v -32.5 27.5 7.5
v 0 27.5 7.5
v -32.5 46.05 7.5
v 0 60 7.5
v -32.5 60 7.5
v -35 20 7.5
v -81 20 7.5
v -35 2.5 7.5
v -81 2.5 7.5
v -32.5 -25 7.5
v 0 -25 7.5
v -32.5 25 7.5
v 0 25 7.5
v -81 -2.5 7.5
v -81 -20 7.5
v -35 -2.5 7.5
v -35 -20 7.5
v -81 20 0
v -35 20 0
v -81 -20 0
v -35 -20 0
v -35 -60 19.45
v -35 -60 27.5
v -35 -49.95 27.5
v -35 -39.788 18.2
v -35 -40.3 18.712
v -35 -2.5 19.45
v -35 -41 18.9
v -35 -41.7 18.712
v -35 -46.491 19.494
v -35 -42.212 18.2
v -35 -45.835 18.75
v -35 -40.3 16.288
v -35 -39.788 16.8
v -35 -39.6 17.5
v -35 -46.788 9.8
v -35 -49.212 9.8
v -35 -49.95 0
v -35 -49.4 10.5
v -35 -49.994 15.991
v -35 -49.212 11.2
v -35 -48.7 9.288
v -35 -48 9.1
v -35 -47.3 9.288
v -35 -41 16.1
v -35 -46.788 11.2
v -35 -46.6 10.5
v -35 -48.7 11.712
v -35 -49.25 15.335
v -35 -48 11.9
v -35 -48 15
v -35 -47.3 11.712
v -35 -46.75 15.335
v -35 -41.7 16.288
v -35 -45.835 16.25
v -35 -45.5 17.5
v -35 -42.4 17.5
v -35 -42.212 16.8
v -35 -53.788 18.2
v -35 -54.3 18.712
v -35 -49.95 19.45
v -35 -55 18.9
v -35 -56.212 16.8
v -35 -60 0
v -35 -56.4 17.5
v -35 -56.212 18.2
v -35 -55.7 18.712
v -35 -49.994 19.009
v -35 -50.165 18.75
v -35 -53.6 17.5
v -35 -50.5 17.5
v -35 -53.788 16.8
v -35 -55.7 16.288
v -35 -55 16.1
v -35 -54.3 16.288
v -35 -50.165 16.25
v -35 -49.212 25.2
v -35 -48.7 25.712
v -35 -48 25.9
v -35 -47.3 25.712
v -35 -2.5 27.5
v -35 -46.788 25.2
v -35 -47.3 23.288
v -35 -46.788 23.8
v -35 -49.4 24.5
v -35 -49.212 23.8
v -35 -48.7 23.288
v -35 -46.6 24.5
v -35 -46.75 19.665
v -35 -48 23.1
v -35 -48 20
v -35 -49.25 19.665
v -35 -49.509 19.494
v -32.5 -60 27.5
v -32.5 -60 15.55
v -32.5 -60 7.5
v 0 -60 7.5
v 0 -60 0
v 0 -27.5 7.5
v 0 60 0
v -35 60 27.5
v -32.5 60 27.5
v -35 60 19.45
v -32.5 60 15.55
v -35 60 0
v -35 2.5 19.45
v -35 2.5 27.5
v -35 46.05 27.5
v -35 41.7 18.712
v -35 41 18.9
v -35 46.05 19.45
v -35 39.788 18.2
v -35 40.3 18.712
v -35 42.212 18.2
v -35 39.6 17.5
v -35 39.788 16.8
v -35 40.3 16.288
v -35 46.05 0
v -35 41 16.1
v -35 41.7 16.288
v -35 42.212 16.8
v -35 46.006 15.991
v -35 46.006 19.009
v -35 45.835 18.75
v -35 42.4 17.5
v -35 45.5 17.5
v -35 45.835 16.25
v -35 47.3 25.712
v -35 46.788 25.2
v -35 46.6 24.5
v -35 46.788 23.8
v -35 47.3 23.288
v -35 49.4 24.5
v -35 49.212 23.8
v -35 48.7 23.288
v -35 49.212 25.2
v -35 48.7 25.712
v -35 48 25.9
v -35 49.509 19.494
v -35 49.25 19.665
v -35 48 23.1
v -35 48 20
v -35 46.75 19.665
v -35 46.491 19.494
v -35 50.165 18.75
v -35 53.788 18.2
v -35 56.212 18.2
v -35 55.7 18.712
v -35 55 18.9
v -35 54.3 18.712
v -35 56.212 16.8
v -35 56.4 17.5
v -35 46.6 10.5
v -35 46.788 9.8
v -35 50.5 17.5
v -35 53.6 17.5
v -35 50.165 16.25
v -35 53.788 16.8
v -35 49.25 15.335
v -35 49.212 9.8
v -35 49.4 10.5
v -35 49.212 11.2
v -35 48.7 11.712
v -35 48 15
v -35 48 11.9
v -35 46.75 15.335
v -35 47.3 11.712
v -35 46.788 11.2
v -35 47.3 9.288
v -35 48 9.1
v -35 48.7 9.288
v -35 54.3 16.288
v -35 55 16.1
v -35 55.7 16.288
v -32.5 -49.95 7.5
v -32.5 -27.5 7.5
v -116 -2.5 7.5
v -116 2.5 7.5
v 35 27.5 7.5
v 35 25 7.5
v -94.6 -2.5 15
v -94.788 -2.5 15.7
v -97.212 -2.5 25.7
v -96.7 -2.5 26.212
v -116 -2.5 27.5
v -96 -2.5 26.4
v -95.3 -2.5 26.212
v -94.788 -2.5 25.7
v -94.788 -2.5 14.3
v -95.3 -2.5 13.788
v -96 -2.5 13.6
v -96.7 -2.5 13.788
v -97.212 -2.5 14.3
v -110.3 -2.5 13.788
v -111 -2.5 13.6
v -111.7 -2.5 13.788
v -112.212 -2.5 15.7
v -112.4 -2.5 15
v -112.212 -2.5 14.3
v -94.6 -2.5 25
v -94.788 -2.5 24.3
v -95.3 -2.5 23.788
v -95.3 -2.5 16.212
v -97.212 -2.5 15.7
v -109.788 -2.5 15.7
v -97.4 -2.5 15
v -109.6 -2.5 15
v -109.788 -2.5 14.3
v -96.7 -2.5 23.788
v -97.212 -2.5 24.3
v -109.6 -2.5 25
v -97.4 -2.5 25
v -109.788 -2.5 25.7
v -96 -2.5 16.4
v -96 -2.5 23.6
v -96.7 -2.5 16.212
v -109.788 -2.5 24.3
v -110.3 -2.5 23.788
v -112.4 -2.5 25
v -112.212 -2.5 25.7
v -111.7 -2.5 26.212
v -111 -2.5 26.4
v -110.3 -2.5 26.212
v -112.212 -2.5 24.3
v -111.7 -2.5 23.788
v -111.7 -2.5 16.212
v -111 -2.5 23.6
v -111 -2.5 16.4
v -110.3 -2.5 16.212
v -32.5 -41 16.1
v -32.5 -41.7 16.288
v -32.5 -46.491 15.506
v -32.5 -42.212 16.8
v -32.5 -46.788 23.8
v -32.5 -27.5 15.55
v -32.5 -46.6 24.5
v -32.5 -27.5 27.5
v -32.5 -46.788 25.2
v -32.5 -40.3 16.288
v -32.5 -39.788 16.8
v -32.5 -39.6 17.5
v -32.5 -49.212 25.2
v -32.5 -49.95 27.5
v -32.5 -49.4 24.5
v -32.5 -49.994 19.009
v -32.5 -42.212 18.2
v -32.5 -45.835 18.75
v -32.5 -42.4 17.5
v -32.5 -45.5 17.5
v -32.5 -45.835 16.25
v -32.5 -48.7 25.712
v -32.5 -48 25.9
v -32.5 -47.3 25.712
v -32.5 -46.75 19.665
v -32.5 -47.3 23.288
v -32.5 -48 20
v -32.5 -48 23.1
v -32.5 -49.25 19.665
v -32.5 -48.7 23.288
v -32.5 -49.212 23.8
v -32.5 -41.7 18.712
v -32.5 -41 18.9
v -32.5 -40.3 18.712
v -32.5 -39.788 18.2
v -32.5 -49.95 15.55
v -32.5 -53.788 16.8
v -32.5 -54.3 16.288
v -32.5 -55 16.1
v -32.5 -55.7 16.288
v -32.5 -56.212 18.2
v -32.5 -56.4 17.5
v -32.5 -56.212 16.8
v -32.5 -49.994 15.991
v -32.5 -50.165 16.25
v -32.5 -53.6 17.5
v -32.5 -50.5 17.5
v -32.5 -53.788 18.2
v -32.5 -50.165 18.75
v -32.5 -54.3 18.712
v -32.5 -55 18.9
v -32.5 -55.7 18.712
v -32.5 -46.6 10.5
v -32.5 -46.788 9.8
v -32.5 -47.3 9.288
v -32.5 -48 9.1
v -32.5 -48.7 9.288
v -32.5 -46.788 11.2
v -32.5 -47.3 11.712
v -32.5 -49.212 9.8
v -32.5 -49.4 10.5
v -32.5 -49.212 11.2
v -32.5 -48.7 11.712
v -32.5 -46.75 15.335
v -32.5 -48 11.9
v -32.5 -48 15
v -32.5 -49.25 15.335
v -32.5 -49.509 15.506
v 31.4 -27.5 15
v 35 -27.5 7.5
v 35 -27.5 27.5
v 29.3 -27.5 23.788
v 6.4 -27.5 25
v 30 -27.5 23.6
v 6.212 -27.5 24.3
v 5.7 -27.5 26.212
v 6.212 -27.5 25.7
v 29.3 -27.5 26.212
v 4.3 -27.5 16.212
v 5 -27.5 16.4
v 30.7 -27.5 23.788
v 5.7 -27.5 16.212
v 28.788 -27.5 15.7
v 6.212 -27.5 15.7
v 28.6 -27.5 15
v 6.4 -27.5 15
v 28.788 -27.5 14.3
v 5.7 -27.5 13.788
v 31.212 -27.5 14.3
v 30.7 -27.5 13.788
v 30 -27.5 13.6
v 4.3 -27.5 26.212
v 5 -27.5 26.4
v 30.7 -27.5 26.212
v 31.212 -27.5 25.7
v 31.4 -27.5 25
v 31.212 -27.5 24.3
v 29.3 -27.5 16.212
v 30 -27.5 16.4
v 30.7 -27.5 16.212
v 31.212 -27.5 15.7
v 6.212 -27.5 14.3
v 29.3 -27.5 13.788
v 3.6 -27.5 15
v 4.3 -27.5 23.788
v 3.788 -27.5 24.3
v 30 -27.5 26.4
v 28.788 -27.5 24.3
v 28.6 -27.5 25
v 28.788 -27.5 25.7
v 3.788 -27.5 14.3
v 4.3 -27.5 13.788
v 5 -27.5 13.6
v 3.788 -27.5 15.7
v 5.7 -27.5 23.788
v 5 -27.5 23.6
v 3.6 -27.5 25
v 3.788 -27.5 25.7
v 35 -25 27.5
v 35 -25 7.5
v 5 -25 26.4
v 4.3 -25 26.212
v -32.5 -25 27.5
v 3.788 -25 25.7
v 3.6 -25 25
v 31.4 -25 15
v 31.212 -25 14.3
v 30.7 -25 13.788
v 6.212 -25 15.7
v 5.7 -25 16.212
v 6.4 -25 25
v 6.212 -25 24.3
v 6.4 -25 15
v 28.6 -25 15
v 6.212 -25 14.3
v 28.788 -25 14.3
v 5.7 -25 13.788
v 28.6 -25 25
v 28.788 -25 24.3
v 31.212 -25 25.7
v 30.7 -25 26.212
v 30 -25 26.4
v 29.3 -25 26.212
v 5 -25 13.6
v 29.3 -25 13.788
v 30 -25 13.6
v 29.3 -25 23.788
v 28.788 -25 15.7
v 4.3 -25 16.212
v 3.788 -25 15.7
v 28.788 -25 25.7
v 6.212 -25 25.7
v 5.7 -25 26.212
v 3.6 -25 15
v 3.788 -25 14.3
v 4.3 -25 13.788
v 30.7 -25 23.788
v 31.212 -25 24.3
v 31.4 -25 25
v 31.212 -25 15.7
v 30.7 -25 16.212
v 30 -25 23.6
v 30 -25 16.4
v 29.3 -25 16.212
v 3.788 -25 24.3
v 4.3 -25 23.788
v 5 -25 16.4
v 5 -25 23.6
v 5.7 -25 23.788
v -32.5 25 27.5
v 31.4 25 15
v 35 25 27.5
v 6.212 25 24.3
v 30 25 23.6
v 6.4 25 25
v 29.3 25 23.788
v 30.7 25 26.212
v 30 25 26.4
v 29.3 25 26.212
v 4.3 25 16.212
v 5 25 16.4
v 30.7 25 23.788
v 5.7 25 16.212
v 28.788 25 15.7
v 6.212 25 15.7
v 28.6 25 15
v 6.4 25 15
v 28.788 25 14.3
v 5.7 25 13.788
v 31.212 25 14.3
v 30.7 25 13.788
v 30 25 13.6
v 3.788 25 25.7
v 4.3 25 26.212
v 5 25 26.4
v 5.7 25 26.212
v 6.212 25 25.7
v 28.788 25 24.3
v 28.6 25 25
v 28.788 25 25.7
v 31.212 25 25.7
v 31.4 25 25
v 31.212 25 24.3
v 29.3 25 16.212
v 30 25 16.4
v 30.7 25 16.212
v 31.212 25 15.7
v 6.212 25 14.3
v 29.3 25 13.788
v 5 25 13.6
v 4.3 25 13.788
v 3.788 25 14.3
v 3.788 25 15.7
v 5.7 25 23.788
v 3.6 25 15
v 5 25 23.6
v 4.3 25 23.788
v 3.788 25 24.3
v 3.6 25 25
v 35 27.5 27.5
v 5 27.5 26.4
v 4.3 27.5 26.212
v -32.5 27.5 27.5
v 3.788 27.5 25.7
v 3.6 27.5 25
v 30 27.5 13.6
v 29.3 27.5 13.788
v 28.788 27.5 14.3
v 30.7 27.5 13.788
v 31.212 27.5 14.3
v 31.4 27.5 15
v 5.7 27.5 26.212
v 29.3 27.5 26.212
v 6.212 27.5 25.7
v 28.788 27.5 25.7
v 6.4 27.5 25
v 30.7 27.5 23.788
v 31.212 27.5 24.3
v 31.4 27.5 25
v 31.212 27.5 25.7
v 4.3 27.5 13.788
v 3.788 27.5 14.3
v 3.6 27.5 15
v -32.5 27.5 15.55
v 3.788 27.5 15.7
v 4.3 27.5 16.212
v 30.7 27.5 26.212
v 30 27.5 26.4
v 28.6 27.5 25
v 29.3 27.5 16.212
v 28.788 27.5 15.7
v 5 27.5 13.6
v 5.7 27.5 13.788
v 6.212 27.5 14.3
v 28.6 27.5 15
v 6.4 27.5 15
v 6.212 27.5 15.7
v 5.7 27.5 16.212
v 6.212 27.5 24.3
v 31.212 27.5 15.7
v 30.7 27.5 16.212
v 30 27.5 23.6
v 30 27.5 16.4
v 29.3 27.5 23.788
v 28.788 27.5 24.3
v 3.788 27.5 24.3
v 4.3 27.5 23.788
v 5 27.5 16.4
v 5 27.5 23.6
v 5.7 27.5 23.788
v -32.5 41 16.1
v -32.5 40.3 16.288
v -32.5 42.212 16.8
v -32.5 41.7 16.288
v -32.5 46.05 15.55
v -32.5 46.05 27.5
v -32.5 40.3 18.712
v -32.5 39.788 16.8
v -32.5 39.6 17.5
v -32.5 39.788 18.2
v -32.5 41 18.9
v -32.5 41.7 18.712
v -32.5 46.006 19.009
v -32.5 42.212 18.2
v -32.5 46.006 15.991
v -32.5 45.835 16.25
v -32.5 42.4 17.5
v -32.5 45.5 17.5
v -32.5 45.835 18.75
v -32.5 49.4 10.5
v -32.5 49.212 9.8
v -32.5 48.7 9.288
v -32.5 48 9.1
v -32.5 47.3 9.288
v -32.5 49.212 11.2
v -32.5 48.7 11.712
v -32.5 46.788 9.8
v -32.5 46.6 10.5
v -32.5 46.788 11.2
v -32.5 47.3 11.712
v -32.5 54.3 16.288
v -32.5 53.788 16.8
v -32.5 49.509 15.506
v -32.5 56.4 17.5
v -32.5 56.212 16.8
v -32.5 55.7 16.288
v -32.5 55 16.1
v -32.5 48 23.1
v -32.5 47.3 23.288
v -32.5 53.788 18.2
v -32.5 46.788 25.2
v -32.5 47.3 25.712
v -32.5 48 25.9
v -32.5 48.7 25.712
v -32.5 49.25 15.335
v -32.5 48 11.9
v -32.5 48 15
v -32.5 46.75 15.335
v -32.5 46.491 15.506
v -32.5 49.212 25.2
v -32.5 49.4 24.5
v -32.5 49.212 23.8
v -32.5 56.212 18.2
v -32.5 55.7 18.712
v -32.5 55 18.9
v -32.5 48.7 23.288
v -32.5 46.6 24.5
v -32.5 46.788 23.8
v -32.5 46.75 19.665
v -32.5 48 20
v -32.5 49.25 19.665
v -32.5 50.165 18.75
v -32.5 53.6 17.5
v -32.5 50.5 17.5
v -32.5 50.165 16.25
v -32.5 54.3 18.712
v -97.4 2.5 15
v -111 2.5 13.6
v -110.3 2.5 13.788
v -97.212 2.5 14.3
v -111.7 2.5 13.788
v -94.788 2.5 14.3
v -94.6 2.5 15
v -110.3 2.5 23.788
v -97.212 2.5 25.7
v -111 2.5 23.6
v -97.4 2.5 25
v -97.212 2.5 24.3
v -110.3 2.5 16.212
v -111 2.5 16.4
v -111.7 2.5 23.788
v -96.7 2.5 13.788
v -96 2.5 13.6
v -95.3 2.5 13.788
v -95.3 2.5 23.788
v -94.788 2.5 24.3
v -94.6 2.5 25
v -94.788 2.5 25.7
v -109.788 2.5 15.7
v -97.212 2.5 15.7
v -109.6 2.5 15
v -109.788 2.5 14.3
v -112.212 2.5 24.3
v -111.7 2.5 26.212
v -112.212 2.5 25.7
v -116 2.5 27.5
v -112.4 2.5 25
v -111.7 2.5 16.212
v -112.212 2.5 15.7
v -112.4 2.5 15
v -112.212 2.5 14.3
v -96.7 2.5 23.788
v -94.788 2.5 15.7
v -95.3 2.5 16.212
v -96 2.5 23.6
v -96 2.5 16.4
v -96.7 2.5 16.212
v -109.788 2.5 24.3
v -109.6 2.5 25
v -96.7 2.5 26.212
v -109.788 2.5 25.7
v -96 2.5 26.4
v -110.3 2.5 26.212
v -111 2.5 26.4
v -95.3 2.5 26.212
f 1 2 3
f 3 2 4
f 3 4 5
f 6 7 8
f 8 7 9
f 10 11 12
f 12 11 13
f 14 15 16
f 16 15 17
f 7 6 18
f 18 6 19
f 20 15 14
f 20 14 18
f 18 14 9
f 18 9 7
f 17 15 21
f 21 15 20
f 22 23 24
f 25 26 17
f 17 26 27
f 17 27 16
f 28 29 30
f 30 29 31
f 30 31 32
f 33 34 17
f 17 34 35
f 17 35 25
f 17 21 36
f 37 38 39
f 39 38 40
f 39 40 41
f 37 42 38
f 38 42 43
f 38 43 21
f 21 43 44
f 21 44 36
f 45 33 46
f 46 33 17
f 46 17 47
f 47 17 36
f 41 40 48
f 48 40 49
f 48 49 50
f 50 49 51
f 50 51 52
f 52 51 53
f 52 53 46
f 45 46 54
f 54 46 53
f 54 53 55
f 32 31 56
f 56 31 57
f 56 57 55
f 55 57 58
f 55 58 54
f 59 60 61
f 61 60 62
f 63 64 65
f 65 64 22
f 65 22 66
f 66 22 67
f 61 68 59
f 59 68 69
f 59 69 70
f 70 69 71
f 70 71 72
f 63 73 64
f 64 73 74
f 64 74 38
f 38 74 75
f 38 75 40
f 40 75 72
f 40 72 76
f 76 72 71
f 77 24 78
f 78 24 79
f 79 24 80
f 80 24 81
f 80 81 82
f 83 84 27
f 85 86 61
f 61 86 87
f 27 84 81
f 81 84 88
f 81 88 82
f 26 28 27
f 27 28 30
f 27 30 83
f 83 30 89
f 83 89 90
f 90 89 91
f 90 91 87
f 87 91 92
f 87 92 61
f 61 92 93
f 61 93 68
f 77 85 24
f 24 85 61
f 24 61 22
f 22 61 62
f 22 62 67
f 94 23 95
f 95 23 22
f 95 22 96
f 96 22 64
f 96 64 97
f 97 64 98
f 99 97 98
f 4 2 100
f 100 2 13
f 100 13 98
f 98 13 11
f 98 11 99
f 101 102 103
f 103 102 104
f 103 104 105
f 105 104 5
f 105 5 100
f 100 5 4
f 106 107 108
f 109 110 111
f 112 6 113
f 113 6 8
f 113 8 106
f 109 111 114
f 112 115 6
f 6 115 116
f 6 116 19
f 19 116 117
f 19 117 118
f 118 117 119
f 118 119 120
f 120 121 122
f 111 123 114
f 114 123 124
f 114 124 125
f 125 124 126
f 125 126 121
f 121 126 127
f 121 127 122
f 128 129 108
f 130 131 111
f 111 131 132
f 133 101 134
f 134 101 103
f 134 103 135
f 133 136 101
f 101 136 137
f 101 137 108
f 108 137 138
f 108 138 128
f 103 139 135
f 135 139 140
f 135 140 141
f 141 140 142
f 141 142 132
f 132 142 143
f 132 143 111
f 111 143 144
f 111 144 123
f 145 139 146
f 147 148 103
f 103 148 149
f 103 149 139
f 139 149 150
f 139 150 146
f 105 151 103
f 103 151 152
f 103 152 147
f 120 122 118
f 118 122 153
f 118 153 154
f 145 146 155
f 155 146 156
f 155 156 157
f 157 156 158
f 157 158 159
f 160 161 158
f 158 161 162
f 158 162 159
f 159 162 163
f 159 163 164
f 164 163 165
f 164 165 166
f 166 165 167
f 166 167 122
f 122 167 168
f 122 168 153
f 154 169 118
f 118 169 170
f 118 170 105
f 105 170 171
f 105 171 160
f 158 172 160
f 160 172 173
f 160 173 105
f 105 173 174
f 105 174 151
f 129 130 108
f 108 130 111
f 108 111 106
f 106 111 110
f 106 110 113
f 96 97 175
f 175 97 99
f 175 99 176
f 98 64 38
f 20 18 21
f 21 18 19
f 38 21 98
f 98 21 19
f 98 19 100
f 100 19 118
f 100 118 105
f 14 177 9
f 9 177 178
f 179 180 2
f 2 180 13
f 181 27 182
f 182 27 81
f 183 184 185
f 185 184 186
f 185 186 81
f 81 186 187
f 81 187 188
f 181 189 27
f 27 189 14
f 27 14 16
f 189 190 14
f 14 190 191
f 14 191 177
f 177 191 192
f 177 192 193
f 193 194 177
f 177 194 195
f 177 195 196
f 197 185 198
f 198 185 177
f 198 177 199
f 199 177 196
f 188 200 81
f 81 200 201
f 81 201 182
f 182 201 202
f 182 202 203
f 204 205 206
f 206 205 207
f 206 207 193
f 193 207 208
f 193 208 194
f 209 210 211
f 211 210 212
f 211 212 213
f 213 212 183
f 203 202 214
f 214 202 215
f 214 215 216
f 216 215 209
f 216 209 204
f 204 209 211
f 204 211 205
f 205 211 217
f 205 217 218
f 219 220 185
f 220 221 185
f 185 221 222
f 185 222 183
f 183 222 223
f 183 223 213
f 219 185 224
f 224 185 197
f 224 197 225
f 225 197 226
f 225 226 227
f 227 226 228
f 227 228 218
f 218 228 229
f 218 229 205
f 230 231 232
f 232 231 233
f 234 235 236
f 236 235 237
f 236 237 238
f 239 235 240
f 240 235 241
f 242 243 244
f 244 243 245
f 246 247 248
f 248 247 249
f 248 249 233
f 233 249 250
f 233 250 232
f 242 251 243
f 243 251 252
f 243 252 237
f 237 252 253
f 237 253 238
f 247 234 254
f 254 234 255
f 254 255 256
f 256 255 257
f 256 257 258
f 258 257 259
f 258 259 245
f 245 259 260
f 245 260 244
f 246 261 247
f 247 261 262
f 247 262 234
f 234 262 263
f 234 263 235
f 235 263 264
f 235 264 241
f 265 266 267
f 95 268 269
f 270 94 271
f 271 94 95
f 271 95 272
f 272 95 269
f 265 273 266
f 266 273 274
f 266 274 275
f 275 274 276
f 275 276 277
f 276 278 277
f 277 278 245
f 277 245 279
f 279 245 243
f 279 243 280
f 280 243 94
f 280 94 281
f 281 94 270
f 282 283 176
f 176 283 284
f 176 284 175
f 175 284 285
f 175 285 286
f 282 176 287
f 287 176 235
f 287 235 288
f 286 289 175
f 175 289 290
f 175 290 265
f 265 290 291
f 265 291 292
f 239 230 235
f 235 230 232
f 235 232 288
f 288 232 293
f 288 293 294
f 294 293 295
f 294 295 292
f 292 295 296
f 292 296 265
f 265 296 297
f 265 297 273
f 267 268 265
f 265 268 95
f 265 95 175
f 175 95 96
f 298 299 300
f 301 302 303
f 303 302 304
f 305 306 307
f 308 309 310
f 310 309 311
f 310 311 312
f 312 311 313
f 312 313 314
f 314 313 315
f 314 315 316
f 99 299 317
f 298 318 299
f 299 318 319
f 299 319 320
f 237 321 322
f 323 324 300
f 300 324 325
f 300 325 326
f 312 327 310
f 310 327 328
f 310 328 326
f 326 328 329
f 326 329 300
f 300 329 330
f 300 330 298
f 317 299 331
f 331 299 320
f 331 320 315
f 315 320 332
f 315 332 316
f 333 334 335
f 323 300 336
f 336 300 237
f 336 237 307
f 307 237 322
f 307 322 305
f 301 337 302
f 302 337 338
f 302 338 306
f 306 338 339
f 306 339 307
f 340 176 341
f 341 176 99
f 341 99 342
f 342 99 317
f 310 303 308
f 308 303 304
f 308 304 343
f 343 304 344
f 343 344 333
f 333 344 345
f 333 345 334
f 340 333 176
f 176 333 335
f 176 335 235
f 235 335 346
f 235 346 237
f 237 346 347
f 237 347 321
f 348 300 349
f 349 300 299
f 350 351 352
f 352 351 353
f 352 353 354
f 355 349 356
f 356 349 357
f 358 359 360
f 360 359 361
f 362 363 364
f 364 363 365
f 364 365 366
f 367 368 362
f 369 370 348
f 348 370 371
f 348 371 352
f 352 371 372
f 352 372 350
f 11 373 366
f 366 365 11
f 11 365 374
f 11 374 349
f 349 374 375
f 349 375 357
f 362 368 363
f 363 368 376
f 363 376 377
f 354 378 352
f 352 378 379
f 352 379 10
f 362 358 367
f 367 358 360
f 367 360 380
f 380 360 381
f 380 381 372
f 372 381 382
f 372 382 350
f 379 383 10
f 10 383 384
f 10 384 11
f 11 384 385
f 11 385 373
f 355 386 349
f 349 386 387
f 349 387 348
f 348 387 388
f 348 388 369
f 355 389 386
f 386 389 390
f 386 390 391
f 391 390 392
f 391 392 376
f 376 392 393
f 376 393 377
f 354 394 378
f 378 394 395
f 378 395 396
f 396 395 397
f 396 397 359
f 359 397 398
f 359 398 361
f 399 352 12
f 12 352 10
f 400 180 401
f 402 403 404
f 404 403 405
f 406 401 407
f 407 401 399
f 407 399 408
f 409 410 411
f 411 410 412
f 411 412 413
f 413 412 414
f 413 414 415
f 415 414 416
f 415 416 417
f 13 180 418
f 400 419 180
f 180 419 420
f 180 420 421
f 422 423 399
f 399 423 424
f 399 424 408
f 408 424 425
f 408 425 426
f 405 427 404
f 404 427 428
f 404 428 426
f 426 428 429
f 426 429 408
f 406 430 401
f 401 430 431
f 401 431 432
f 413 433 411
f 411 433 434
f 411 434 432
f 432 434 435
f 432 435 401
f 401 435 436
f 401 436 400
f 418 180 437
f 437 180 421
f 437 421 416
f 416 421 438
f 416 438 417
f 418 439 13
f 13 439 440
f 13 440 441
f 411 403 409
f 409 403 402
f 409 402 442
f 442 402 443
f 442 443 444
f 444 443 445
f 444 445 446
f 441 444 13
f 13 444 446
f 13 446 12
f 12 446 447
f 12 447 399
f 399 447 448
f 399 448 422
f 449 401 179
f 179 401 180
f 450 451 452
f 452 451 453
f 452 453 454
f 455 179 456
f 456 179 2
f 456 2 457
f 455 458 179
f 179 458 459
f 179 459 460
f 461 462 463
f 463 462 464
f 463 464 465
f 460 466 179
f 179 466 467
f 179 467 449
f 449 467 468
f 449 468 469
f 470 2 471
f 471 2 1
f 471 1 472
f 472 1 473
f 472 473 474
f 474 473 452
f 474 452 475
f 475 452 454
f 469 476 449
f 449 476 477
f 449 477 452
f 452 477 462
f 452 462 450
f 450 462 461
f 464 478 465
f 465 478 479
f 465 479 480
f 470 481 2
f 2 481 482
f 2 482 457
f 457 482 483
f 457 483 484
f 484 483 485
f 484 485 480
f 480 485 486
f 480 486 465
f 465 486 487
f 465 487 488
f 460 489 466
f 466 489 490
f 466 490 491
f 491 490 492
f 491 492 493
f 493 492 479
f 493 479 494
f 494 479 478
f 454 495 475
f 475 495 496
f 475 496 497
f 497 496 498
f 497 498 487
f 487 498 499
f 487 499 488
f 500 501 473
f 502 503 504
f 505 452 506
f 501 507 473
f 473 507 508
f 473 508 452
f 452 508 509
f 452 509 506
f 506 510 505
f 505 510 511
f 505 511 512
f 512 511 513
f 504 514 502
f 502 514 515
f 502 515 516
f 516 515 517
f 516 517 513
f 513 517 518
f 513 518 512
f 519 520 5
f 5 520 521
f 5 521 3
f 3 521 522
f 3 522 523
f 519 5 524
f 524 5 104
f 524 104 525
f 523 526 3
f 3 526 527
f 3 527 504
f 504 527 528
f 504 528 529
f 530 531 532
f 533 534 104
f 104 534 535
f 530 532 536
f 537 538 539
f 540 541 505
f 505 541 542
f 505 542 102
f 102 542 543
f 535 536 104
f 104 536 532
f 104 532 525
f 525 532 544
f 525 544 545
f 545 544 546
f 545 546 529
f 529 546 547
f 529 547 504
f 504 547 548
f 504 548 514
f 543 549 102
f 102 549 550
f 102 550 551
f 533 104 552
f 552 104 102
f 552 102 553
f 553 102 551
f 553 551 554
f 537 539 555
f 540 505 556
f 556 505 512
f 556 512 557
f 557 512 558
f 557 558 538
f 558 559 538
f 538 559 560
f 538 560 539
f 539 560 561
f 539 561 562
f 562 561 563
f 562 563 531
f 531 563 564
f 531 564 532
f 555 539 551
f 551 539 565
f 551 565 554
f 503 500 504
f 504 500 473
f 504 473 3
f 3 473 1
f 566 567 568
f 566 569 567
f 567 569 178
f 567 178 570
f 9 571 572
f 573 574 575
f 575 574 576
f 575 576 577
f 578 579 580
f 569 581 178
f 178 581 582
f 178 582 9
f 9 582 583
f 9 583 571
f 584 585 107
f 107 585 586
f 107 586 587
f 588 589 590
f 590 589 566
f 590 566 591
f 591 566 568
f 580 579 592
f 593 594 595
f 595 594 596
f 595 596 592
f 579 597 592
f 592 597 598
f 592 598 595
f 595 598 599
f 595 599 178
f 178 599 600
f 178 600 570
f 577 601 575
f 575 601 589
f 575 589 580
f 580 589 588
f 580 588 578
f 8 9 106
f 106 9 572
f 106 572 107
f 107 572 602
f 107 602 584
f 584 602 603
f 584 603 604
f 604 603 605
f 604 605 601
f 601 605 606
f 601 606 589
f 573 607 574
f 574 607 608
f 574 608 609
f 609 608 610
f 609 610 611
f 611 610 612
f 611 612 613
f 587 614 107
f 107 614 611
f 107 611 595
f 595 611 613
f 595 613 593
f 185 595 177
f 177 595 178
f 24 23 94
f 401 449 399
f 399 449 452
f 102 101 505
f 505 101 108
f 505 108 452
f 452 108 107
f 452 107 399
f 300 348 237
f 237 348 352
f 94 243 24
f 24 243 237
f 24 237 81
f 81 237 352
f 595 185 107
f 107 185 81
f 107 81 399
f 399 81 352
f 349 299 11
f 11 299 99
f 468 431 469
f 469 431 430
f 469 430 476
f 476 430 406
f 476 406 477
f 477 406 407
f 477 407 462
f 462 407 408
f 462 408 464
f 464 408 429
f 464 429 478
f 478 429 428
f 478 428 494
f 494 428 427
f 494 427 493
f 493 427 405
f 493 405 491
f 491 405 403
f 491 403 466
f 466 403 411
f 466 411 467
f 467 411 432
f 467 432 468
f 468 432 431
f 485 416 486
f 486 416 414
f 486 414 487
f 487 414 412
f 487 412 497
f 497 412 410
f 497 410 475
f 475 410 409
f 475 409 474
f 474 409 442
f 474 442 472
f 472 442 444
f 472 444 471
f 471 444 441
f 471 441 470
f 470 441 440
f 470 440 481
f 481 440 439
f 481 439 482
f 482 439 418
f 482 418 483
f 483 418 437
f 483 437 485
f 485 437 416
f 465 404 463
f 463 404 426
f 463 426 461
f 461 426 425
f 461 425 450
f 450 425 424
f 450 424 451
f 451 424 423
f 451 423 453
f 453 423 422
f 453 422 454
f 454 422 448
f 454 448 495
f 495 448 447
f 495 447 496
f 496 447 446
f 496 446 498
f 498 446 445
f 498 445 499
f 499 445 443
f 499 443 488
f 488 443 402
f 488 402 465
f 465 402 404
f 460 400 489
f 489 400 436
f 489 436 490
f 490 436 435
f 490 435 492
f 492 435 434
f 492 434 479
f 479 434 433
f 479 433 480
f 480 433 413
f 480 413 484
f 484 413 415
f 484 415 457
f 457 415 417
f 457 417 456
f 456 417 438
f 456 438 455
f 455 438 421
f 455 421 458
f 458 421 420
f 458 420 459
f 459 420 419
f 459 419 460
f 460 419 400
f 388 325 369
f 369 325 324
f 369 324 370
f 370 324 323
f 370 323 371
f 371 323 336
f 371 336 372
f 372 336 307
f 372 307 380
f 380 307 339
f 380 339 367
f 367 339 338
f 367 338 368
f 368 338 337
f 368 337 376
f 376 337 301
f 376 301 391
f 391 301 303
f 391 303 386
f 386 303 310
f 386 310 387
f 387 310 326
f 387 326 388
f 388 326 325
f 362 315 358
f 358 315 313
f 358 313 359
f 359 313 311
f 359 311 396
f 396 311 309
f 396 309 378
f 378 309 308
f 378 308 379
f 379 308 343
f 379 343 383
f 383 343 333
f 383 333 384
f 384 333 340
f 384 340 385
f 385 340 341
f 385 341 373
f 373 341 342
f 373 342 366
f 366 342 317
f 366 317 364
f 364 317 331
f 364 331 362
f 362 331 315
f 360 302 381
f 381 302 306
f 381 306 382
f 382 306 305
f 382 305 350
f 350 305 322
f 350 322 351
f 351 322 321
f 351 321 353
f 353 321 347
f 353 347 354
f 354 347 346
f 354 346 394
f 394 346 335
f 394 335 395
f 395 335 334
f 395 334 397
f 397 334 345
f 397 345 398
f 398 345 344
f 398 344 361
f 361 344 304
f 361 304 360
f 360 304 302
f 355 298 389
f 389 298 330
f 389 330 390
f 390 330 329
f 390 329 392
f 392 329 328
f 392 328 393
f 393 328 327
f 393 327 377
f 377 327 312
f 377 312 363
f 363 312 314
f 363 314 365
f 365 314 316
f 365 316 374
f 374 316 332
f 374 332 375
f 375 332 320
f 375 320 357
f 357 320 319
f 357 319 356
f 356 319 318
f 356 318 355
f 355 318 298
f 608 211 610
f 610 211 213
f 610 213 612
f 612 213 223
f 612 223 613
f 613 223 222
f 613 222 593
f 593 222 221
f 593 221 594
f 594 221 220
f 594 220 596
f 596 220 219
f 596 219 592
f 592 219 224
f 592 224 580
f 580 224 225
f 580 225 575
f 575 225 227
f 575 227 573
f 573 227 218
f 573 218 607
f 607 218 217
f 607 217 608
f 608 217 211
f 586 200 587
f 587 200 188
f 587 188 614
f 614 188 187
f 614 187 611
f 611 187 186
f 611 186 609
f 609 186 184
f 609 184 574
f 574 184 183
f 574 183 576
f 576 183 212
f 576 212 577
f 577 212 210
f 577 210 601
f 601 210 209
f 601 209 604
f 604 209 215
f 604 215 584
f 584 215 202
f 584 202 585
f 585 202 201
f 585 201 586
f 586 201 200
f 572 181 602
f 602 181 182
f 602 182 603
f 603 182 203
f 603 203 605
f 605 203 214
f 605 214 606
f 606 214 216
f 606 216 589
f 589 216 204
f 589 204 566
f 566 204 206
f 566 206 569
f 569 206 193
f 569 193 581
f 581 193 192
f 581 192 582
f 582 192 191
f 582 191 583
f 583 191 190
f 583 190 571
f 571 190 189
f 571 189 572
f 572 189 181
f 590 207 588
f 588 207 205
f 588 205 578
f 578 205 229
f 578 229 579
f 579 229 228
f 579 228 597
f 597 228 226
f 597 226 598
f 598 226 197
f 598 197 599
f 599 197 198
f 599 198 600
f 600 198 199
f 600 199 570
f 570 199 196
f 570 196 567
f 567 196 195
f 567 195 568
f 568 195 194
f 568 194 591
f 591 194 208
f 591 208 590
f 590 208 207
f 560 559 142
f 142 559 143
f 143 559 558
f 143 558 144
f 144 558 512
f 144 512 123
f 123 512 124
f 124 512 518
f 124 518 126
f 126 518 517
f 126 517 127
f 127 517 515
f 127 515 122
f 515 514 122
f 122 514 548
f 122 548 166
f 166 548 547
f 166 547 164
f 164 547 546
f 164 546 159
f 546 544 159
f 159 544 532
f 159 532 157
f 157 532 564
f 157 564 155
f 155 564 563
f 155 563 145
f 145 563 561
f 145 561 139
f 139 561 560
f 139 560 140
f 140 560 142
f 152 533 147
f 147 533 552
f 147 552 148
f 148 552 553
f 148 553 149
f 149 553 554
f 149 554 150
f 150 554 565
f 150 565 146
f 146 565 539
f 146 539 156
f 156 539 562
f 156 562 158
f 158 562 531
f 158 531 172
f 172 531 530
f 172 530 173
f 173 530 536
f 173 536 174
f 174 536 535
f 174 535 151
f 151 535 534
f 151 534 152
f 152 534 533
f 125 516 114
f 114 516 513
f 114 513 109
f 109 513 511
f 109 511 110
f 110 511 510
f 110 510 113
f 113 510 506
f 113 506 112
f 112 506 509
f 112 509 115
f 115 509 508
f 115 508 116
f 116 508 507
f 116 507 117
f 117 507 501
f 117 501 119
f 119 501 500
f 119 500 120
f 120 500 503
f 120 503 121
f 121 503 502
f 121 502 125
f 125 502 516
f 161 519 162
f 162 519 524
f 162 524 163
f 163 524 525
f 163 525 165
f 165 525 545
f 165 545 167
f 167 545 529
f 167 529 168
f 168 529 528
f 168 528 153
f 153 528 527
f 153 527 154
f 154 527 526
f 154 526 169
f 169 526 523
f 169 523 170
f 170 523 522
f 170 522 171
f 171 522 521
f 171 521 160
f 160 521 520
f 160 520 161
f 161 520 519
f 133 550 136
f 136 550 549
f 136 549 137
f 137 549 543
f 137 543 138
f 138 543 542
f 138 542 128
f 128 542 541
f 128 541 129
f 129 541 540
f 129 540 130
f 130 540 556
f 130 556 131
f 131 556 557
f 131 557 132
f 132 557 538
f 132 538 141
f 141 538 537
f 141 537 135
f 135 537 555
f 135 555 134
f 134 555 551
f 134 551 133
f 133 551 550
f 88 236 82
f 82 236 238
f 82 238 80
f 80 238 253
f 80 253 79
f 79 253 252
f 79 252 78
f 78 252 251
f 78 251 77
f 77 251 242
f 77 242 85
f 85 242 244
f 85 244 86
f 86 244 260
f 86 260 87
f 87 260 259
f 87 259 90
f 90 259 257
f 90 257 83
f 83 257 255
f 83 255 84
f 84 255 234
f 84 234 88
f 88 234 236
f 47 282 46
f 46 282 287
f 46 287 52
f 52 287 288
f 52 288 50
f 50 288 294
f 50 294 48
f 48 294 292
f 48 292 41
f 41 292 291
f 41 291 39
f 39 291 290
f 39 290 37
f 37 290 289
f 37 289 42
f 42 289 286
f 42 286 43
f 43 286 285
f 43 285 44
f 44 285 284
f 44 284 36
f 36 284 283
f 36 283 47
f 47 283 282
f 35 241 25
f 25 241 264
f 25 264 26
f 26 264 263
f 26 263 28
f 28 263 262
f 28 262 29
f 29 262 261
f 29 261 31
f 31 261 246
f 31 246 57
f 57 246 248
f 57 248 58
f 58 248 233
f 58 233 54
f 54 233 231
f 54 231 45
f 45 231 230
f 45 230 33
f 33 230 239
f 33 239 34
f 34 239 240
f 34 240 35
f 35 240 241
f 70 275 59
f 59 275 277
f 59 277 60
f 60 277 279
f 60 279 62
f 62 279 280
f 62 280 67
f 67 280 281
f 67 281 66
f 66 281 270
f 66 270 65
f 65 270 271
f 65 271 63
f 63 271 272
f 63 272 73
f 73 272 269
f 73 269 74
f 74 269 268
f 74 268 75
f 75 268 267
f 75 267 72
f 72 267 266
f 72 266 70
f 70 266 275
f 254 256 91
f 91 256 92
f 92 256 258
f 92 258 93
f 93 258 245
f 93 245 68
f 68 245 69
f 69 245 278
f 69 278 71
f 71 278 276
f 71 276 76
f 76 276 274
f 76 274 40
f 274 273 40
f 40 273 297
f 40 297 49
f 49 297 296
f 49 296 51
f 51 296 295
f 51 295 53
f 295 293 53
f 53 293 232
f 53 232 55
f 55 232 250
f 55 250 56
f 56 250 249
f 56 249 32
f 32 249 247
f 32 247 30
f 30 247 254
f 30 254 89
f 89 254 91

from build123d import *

# Parameters (mm, degrees)
SKETCH1_W           = 46
SKETCH1_H           = 40
SKETCH1_W_2         = 35
SKETCH1_H_2         = 120
BOSS_EXTRUDE2_DEPTH = 7.5
SKETCH2_W           = 46
SKETCH2_H           = 5
SKETCH2_W_2         = 32.5
SKETCH2_H_2         = 2.5
SKETCH2_W_3         = 35
BOSS_EXTRUDE3_DEPTH = 20
SKETCH3_R           = 1.4
CUT_EXTRUDE1_DEPTH  = 60
SKETCH4_R           = 1.4
CUT_EXTRUDE2_DEPTH  = 6
SKETCH6_R           = 1.4
SKETCH6_R_2         = 2.5
CUT_EXTRUDE3_DEPTH  = 2.5


with BuildPart() as part:
    # Sketch1 → Boss-Extrude2 (new body)
    with BuildSketch(Plane.XY):
        with Locations((-58, 0)):
            Rectangle(SKETCH1_W, SKETCH1_H)
        with Locations((-17.5, 0)):
            Rectangle(SKETCH1_W_2, SKETCH1_H_2)
    extrude(amount=BOSS_EXTRUDE2_DEPTH)

    # Sketch2 → Boss-Extrude3 (add)
    with BuildSketch(Plane.XY.offset(7.5)):
        with Locations((-58, 0)):
            Rectangle(SKETCH2_W, SKETCH2_H)
        Polygon((-32.5, 60), (-35, 60), (-35, 20), (-35, 2.5), (-35, -2.5), (-35, -20), (-35, -60), (-32.5, -60), (-32.5, -27.5), (-32.5, -25), (-32.5, 25), (-32.5, 27.5), align=None)
        with Locations((-16.25, 26.25)):
            Rectangle(SKETCH2_W_2, SKETCH2_H_2)
        with Locations((17.5, 26.25)):
            Rectangle(SKETCH2_W_3, SKETCH2_H_2)
        with Locations((17.5, -26.25)):
            Rectangle(SKETCH2_W_3, SKETCH2_H_2)
        with Locations((-16.25, -26.25)):
            Rectangle(SKETCH2_W_2, SKETCH2_H_2)
        with Locations((-98.5, 0)):
            Rectangle(SKETCH2_W_3, SKETCH2_H)
    extrude(amount=BOSS_EXTRUDE3_DEPTH)

    # Sketch3 → Cut-Extrude1 (cut)
    with BuildSketch(Plane.XZ.offset(27.5)):
        with Locations(Location((30, 25, 0), (0, 0, 180))):
            Circle(SKETCH3_R)
        with Locations(Location((30, 15, 0), (0, 0, 180))):
            Circle(SKETCH3_R)
        with Locations(Location((5, 25, 0), (0, 0, 180))):
            Circle(SKETCH3_R)
        with Locations(Location((5, 15, 0), (0, 0, 180))):
            Circle(SKETCH3_R)
    extrude(amount=-CUT_EXTRUDE1_DEPTH, mode=Mode.SUBTRACT)

    # Sketch4 → Cut-Extrude2 (cut)
    with BuildSketch(Plane.XZ.offset(2.5)):
        with Locations((-111, 25)):
            Circle(SKETCH4_R)
        with Locations((-96, 25)):
            Circle(SKETCH4_R)
        with Locations((-96, 15)):
            Circle(SKETCH4_R)
        with Locations((-111, 15)):
            Circle(SKETCH4_R)
    extrude(amount=-CUT_EXTRUDE2_DEPTH, mode=Mode.SUBTRACT)

    # Sketch6 → Cut-Extrude3 (cut)
    with BuildSketch(Plane(origin=(-32.5, 0, 0), x_dir=(0, 0, -1), z_dir=(1, 0, 0))):
        with Locations(Location((-24.5, -48, 0), (0, 0, 90))):
            Circle(SKETCH6_R)
        with Locations(Location((-17.5, -48, 0), (0, 0, 90))):
            Circle(SKETCH6_R_2)
        with Locations(Location((-17.5, -55, 0), (0, 0, 90))):
            Circle(SKETCH6_R)
        with Locations(Location((-17.5, -41, 0), (0, 0, 270))):
            Circle(SKETCH6_R)
        with Locations(Location((-10.5, -48, 0), (0, 0, 270))):
            Circle(SKETCH6_R)
        with Locations(Location((-10.5, 48, 0), (0, 0, 90))):
            Circle(SKETCH6_R)
        with Locations(Location((-17.5, 41, 0), (0, 0, 90))):
            Circle(SKETCH6_R)
        with Locations(Location((-17.5, 55, 0), (0, 0, 270))):
            Circle(SKETCH6_R)
        with Locations(Location((-17.5, 48, 0), (0, 0, 270))):
            Circle(SKETCH6_R_2)
        with Locations(Location((-24.5, 48, 0), (0, 0, 270))):
            Circle(SKETCH6_R)
    extrude(amount=-CUT_EXTRUDE3_DEPTH, mode=Mode.SUBTRACT)


solid = part.part
